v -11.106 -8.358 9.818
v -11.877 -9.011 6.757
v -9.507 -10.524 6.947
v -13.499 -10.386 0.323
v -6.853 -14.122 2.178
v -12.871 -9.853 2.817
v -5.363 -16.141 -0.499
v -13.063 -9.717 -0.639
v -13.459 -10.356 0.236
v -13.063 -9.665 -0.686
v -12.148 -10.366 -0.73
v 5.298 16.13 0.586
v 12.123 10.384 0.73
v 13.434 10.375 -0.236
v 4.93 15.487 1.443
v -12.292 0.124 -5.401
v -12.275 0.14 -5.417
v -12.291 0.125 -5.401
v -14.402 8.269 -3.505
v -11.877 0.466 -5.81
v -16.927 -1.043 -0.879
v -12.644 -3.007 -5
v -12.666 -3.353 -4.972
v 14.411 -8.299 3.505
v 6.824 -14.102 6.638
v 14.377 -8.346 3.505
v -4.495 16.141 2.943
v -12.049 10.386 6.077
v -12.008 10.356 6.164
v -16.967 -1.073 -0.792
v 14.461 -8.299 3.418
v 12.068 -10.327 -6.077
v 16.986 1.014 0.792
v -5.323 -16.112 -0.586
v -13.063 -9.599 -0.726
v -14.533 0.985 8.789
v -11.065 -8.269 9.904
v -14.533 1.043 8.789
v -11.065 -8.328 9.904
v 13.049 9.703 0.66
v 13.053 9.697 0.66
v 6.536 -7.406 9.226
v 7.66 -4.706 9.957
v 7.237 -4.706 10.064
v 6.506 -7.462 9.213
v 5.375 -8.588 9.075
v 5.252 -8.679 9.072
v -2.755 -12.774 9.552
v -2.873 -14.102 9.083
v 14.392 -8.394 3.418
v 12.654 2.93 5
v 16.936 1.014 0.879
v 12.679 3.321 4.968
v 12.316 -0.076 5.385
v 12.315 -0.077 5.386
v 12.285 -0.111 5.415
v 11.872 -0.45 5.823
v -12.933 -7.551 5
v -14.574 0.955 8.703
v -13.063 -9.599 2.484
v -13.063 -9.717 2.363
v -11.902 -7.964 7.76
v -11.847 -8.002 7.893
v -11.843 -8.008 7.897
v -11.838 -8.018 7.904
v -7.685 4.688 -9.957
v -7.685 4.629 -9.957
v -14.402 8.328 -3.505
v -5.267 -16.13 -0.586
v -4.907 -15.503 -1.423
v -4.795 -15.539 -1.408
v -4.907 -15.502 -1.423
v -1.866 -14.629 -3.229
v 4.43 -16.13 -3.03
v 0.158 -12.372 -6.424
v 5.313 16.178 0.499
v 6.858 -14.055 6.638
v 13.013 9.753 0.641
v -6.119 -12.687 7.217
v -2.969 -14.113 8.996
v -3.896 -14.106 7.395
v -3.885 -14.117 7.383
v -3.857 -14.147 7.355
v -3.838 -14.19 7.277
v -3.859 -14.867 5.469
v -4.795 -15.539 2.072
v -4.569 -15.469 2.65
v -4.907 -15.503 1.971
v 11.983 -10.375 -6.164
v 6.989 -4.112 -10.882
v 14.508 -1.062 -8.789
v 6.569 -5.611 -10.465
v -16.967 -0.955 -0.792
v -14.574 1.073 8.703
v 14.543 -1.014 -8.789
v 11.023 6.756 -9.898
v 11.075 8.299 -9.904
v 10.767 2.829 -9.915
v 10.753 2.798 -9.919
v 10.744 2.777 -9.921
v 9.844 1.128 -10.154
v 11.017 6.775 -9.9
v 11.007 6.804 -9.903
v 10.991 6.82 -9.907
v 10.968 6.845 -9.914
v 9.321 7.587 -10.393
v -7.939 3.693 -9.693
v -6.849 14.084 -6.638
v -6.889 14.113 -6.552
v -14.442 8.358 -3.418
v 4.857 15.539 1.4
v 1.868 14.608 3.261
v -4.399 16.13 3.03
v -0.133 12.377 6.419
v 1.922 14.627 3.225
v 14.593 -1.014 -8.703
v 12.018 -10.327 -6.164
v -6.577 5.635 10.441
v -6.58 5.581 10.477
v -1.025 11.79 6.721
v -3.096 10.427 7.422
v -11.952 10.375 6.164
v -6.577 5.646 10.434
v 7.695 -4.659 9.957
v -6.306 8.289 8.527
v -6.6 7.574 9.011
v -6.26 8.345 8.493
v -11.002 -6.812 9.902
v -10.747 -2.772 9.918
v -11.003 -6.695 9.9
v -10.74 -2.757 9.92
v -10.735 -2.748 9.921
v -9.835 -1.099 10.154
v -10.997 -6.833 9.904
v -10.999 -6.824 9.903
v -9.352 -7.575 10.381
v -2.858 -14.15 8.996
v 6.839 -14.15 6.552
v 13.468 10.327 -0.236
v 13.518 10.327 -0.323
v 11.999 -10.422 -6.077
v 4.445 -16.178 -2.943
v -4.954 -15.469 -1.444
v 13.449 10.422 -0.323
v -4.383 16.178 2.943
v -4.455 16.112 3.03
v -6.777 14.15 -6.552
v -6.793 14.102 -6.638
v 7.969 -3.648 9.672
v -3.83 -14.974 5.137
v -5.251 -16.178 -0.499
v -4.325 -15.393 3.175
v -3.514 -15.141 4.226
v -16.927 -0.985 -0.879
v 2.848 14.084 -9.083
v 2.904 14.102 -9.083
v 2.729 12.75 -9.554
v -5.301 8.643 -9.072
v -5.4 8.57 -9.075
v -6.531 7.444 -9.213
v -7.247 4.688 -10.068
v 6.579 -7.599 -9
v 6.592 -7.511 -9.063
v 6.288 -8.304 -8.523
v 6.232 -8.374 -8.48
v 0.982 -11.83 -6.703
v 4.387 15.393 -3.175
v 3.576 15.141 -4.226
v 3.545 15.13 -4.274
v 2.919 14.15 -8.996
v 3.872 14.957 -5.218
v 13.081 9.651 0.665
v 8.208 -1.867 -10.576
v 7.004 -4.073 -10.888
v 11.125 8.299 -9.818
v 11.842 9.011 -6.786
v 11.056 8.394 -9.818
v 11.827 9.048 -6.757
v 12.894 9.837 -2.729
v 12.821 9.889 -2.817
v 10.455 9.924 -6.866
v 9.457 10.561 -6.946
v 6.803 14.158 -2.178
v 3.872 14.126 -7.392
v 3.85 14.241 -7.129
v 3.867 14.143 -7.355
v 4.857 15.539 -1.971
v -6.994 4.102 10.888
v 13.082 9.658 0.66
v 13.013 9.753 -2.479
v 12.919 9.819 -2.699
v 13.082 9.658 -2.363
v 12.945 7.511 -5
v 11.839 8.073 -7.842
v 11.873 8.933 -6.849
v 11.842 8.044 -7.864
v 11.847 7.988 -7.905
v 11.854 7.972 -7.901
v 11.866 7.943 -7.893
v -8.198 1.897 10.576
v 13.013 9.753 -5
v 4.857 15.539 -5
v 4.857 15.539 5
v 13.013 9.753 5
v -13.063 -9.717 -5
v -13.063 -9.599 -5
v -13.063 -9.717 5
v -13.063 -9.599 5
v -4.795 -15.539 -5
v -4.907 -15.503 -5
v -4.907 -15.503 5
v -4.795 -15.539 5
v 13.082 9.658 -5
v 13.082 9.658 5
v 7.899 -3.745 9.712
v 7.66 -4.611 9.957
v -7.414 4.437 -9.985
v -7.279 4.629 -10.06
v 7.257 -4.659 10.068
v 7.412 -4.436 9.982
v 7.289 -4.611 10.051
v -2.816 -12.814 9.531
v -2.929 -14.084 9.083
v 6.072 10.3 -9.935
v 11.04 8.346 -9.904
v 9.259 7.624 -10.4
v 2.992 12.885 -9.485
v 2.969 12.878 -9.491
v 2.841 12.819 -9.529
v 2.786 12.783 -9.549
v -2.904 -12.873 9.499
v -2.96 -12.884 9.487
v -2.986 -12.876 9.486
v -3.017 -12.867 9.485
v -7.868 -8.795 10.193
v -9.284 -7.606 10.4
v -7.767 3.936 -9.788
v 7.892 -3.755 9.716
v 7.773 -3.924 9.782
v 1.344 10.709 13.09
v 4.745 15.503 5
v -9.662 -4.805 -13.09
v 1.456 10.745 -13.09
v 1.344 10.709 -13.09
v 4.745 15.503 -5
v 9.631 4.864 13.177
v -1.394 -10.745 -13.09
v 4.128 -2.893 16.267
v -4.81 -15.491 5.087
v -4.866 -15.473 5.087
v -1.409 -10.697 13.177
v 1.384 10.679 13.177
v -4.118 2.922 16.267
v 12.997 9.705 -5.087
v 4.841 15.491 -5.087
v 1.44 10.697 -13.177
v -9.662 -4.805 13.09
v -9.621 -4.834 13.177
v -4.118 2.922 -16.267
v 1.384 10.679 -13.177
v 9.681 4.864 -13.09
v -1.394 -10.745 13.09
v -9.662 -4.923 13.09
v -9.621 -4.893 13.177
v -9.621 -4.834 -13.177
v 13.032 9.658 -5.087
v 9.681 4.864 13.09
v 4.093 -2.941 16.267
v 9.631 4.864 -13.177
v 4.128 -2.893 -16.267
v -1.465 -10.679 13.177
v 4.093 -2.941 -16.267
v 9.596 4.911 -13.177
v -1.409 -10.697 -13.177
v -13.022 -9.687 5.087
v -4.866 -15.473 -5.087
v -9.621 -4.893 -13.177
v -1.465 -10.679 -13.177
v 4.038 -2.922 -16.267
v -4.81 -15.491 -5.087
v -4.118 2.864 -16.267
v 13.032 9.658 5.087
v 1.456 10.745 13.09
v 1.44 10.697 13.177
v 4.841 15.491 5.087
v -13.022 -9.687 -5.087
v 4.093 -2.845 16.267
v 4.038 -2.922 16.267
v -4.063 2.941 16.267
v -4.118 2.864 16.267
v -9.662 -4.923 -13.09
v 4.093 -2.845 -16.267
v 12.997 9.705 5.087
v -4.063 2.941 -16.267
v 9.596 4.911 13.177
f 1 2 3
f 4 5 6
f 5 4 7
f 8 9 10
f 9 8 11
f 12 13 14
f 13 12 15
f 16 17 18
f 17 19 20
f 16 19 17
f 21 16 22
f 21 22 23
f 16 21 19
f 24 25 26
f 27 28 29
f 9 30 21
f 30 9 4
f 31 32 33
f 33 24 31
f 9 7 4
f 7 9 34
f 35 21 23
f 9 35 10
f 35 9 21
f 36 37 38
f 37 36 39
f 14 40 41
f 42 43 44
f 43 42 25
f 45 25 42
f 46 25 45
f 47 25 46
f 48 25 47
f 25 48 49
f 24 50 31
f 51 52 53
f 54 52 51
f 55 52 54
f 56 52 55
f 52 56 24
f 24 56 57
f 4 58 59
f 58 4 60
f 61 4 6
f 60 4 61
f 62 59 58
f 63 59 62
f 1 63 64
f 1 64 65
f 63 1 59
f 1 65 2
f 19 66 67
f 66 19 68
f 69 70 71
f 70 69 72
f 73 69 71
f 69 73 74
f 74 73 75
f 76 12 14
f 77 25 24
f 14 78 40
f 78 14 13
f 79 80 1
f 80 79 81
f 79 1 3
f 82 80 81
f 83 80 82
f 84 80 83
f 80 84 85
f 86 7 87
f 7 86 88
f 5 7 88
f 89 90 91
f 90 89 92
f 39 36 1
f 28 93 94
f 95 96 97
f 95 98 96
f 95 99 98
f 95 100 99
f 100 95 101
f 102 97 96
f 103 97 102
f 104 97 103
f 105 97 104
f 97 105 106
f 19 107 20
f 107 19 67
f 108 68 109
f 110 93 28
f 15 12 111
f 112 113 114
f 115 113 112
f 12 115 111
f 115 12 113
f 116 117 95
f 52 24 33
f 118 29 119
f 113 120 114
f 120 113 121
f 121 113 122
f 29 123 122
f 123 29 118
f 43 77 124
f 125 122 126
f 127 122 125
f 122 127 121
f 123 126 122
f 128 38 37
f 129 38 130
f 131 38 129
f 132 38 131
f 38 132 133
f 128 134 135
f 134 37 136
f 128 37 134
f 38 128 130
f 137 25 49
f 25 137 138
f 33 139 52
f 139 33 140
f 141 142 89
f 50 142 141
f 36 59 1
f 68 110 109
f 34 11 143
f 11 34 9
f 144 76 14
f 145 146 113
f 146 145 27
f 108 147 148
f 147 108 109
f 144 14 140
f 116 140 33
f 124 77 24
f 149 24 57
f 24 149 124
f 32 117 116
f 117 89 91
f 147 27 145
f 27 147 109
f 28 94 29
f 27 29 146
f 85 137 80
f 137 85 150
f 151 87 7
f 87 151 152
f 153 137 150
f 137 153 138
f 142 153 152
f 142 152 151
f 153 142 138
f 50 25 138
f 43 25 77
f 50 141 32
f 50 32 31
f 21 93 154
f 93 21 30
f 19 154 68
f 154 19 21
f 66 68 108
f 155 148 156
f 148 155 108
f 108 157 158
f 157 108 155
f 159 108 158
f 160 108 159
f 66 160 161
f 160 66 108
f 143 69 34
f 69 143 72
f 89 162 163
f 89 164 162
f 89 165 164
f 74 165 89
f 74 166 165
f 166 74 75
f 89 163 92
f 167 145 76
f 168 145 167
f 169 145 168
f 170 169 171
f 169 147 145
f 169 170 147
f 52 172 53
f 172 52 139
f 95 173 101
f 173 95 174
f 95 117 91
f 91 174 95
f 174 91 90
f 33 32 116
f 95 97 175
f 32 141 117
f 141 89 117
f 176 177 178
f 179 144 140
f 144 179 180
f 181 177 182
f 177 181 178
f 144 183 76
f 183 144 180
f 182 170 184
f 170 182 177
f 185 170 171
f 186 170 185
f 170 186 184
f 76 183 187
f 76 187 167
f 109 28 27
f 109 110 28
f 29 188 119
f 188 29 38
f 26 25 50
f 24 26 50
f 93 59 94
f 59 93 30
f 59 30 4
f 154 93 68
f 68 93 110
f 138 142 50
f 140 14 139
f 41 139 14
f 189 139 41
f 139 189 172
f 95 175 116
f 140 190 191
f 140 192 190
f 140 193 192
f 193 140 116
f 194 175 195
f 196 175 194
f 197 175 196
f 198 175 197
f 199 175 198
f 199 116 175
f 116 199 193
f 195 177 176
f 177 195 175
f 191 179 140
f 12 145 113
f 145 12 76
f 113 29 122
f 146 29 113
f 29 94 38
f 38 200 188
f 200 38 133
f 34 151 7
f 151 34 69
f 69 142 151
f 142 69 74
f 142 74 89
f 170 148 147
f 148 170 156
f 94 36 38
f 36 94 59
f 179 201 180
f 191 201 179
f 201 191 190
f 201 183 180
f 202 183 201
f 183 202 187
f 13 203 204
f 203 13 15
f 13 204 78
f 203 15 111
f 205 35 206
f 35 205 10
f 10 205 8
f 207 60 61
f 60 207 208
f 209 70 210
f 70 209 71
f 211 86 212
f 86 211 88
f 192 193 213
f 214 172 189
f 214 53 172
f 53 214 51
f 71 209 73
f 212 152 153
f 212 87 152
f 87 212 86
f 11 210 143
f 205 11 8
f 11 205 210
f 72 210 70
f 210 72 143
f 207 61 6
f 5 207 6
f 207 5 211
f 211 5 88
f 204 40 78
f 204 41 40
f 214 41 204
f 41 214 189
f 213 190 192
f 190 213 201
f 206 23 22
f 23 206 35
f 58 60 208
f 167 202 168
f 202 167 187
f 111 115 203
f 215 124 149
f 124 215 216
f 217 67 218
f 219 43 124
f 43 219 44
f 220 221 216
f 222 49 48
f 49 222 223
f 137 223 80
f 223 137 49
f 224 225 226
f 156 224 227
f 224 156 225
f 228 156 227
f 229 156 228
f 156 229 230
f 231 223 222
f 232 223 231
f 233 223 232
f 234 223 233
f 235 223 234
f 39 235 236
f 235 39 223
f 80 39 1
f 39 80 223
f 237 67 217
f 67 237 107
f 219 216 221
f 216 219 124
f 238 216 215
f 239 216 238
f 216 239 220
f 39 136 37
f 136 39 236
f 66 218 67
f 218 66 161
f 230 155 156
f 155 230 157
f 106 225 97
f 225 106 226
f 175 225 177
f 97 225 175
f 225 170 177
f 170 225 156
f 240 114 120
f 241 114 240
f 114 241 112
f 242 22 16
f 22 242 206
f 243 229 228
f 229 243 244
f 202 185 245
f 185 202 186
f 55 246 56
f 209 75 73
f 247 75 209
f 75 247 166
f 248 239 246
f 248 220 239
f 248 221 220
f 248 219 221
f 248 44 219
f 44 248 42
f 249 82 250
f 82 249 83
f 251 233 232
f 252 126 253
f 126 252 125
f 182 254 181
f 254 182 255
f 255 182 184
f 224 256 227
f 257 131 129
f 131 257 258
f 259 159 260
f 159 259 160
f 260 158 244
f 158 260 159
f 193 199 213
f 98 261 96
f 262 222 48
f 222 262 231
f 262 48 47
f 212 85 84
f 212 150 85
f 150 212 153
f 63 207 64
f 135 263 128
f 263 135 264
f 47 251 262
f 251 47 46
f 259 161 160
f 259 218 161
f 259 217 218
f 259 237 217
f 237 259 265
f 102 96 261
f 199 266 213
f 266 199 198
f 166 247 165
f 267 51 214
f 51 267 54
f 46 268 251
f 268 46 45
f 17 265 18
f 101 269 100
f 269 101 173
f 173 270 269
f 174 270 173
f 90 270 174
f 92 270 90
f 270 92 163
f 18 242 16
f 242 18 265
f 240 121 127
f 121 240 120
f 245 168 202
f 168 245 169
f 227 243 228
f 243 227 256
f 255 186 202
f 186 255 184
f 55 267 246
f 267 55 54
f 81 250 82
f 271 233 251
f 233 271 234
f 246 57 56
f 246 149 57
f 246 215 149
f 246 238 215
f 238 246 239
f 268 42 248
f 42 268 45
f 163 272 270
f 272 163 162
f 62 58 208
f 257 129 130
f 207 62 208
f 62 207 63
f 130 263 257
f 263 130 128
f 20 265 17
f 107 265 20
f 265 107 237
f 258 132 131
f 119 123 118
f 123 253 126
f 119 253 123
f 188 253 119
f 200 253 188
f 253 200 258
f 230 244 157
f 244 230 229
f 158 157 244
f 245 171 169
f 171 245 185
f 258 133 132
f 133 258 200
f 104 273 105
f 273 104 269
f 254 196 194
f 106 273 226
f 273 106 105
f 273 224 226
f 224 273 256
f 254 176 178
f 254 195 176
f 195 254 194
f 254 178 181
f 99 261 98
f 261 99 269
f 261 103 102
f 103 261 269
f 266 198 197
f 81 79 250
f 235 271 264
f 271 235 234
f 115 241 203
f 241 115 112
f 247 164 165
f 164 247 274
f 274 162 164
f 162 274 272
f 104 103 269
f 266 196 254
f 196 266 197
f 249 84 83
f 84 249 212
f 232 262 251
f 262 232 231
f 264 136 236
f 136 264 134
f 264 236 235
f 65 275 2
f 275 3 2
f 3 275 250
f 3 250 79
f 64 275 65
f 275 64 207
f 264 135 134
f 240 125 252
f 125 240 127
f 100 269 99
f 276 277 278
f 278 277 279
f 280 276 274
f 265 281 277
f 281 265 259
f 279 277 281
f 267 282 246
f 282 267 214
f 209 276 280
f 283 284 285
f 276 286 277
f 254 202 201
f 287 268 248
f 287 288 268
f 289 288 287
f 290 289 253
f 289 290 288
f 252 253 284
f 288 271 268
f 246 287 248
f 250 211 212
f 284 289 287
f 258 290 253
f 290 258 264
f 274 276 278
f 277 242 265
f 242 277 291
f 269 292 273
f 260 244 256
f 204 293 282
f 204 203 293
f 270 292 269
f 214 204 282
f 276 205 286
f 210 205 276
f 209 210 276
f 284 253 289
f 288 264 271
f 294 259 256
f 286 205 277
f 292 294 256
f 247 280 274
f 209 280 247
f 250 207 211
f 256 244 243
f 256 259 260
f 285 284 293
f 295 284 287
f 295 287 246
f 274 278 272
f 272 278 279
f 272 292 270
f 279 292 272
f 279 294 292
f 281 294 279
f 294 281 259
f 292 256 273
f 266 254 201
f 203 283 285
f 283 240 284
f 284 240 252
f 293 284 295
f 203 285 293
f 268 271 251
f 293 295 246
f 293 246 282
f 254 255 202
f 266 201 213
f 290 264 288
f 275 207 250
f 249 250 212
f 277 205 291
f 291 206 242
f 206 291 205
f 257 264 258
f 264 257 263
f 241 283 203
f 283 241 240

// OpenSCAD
// Auto-generated OpenSCAD file

    inner_points = 10*[[0.14248327341962527, 1.0649917302561571, -1.3090169943752274], [0.9580903383196593, 0.4863855466691237, -1.3090169943748198], [-0.9580910891193597, -0.48638509736213764, 1.3090169943748198], [-0.14248402421932574, -1.0649912809491708, 1.3090169943752274], [-0.4078039078494043, 0.28930331644652235, -1.6180339887500987], [0.4078031570506297, -0.289302867140511, -1.618033988749691], [0.4825794550170831, 1.5443935346701905, -0.5000000000003272], [1.298186519917117, 0.965787351083157, -0.4999999999999196], [-1.2981872707168176, -0.965786901776171, 0.4999999999999196], [-0.4825802058167836, -1.5443930853632042, 0.5000000000003272], [-0.4078039078503302, 0.28930331644749707, 1.618033988749691], [0.40780315704970377, -0.2893028671395363, 1.6180339887500987], [-0.9580910891186109, -0.48638509736292634, -1.3090169943750751], [-0.14248402421857673, -1.0649912809499593, -1.3090169943746672], [0.4825794550167972, 1.544393534670492, 0.4999999999996728], [1.2981865199168312, 0.9657873510834587, 0.5000000000000806], [-1.2981872707165318, -0.9657869017764726, -0.5000000000000806], [-0.48258020581649774, -1.5443930853635057, -0.4999999999996728], [0.14248327341887626, 1.0649917302569456, 1.3090169943746672], [0.9580903383189104, 0.4863855466699124, 1.3090169943750751], [-0.6844982809436438, 0.8078895934640433, -0.8090169943753867], [1.2347847114134358, -0.032200730347909934, -0.499999999999637], [-1.2347854622131365, 0.032201179654895995, 0.499999999999637], [0.6844975301439434, -0.8078891441570573, 0.8090169943753867], [-0.3444020993461857, 1.2872913978780771, -4.862776847858186e-13], [0.6844975301444062, -0.8078891441575446, -0.8090169943745082], [-0.6844982809441066, 0.8078895934645307, 0.8090169943745082], [0.3444013485464852, -1.2872909485710908, 4.862776847858186e-13], [-1.2347854622128502, 0.03220117965459479, -0.5000000000003629], [1.2347847114131496, -0.03220073034760873, 0.5000000000003629]];

    outer_points = 10*[[1.6886306591457743, 0.10140860074207245, 0.07922614112991666], [1.4492611727633173, -0.10140860074207245, -0.8702829066264164], [-1.4492611727633173, 0.10140860074207245, 0.8702829066264164], [-1.6886306591457743, -0.10140860074207245, -0.07922614112991666], [1.3418365432044954, 1.0326989450942865, -0.032273346155188454], [1.1024670568220385, 0.8298817436101416, -0.9817823939115216], [1.4361407617027524, -0.8298817436101416, 0.34180402710957575], [1.1967712753202955, -1.0326989450942865, -0.6077050206467574], [-1.1967712753202955, 1.0326989450942865, 0.6077050206467574], [-1.4361407617027524, 0.8298817436101416, -0.34180402710957575], [-1.1024670568220385, -0.8298817436101416, 0.9817823939115216], [-1.3418365432044954, -1.0326989450942865, 0.032273346155188454], [0.5282219790700129, 1.6082680312985487, 0.049894579668983724], [0.28885249268755586, 1.4054508298144037, -0.8996144680873494], [0.6808094098826893, -1.4054508298144037, 0.6551644840336533], [0.44143992350023237, -1.6082680312985487, -0.2943445637226797], [-0.44143992350023237, 1.6082680312985487, 0.2943445637226797], [-0.6808094098826893, 1.4054508298144037, -0.6551644840336533], [-0.28885249268755586, -1.4054508298144037, 0.8996144680873494], [-0.5282219790700129, -1.6082680312985487, -0.049894579668983724], [1.0169691649835269, 0.46543823413525565, 0.7244805586051959], [0.551976750971019, -0.46543823413525565, -1.1200089413534458], [-0.551976750971019, 0.46543823413525565, 1.1200089413534458], [-1.0169691649835269, -0.46543823413525565, -0.7244805586051959], [0.7644792675405051, -0.4658521102169585, 0.987058444584855], [0.2051826350297401, 0.4658521102169585, -1.231508428638551], [-0.2051826350297401, -0.4658521102169585, 1.231508428638551], [-0.7644792675405051, 0.4658521102169585, -0.987058444584855], [0.20335460084904425, 1.0410073203395176, 0.8066484844293681], [-0.20335460084904425, -1.0410073203395176, -0.8066484844293681]];

    // Convex hull for inner set (I)
    module inner_hull() {
        hull() {
            for (p = inner_points) {
                translate(p) sphere(r=0.1);
            }
        }
    }

    // Convex hull for outer set (O) minus inner hull (O \ I)
    module outer_minus_inner() {
        difference() {
            hull() {
                for (p = outer_points) {
                    translate(p) sphere(r=0.1);
                }
            }
            inner_hull(); // Subtract inner hull
        }
    }

    // Convex hull for outer set (O) minus all translated inner hulls
    module outer_minus_AllTranslationInner() {
        difference() {
            hull() {
                for (p = outer_points) {
                    translate(p) sphere(r=0.1);
                }
            }
            hull() {
                translate([0,0,50]) inner_hull();
                translate([0,0,-50]) inner_hull();
            }; // Subtract translated inner hulls
        }
    }

    // Difference between outer_minus_inner and outer_minus_AllTranslationInner
    module outer_minus_inner_diff() {
        difference() {
            // Outer minus inner
            difference() {
                hull() {
                    for (p = outer_points) {
                        translate(p) sphere(r=0.1);
                    }
                }
                inner_hull();
            }

            // Subtract Outer minus AllTranslationInner
            difference() {
                hull() {
                    for (p = outer_points) {
                        translate(p) sphere(r=0.1);
                    }
                }
                hull() {
                    translate([0,0,50]) inner_hull();
                    translate([0,0,-50]) inner_hull();
                };
            }
        }
    }

    // Rendering all with colors applied
    color([1, 0, 0, 0.5]) inner_hull(); // Transparent red
    color([0, 1, 0, 1]) outer_minus_AllTranslationInner(); // Opaque green
    color([1, 1, 0, 1]) outer_minus_inner_diff(); // Opaque yellow
    
